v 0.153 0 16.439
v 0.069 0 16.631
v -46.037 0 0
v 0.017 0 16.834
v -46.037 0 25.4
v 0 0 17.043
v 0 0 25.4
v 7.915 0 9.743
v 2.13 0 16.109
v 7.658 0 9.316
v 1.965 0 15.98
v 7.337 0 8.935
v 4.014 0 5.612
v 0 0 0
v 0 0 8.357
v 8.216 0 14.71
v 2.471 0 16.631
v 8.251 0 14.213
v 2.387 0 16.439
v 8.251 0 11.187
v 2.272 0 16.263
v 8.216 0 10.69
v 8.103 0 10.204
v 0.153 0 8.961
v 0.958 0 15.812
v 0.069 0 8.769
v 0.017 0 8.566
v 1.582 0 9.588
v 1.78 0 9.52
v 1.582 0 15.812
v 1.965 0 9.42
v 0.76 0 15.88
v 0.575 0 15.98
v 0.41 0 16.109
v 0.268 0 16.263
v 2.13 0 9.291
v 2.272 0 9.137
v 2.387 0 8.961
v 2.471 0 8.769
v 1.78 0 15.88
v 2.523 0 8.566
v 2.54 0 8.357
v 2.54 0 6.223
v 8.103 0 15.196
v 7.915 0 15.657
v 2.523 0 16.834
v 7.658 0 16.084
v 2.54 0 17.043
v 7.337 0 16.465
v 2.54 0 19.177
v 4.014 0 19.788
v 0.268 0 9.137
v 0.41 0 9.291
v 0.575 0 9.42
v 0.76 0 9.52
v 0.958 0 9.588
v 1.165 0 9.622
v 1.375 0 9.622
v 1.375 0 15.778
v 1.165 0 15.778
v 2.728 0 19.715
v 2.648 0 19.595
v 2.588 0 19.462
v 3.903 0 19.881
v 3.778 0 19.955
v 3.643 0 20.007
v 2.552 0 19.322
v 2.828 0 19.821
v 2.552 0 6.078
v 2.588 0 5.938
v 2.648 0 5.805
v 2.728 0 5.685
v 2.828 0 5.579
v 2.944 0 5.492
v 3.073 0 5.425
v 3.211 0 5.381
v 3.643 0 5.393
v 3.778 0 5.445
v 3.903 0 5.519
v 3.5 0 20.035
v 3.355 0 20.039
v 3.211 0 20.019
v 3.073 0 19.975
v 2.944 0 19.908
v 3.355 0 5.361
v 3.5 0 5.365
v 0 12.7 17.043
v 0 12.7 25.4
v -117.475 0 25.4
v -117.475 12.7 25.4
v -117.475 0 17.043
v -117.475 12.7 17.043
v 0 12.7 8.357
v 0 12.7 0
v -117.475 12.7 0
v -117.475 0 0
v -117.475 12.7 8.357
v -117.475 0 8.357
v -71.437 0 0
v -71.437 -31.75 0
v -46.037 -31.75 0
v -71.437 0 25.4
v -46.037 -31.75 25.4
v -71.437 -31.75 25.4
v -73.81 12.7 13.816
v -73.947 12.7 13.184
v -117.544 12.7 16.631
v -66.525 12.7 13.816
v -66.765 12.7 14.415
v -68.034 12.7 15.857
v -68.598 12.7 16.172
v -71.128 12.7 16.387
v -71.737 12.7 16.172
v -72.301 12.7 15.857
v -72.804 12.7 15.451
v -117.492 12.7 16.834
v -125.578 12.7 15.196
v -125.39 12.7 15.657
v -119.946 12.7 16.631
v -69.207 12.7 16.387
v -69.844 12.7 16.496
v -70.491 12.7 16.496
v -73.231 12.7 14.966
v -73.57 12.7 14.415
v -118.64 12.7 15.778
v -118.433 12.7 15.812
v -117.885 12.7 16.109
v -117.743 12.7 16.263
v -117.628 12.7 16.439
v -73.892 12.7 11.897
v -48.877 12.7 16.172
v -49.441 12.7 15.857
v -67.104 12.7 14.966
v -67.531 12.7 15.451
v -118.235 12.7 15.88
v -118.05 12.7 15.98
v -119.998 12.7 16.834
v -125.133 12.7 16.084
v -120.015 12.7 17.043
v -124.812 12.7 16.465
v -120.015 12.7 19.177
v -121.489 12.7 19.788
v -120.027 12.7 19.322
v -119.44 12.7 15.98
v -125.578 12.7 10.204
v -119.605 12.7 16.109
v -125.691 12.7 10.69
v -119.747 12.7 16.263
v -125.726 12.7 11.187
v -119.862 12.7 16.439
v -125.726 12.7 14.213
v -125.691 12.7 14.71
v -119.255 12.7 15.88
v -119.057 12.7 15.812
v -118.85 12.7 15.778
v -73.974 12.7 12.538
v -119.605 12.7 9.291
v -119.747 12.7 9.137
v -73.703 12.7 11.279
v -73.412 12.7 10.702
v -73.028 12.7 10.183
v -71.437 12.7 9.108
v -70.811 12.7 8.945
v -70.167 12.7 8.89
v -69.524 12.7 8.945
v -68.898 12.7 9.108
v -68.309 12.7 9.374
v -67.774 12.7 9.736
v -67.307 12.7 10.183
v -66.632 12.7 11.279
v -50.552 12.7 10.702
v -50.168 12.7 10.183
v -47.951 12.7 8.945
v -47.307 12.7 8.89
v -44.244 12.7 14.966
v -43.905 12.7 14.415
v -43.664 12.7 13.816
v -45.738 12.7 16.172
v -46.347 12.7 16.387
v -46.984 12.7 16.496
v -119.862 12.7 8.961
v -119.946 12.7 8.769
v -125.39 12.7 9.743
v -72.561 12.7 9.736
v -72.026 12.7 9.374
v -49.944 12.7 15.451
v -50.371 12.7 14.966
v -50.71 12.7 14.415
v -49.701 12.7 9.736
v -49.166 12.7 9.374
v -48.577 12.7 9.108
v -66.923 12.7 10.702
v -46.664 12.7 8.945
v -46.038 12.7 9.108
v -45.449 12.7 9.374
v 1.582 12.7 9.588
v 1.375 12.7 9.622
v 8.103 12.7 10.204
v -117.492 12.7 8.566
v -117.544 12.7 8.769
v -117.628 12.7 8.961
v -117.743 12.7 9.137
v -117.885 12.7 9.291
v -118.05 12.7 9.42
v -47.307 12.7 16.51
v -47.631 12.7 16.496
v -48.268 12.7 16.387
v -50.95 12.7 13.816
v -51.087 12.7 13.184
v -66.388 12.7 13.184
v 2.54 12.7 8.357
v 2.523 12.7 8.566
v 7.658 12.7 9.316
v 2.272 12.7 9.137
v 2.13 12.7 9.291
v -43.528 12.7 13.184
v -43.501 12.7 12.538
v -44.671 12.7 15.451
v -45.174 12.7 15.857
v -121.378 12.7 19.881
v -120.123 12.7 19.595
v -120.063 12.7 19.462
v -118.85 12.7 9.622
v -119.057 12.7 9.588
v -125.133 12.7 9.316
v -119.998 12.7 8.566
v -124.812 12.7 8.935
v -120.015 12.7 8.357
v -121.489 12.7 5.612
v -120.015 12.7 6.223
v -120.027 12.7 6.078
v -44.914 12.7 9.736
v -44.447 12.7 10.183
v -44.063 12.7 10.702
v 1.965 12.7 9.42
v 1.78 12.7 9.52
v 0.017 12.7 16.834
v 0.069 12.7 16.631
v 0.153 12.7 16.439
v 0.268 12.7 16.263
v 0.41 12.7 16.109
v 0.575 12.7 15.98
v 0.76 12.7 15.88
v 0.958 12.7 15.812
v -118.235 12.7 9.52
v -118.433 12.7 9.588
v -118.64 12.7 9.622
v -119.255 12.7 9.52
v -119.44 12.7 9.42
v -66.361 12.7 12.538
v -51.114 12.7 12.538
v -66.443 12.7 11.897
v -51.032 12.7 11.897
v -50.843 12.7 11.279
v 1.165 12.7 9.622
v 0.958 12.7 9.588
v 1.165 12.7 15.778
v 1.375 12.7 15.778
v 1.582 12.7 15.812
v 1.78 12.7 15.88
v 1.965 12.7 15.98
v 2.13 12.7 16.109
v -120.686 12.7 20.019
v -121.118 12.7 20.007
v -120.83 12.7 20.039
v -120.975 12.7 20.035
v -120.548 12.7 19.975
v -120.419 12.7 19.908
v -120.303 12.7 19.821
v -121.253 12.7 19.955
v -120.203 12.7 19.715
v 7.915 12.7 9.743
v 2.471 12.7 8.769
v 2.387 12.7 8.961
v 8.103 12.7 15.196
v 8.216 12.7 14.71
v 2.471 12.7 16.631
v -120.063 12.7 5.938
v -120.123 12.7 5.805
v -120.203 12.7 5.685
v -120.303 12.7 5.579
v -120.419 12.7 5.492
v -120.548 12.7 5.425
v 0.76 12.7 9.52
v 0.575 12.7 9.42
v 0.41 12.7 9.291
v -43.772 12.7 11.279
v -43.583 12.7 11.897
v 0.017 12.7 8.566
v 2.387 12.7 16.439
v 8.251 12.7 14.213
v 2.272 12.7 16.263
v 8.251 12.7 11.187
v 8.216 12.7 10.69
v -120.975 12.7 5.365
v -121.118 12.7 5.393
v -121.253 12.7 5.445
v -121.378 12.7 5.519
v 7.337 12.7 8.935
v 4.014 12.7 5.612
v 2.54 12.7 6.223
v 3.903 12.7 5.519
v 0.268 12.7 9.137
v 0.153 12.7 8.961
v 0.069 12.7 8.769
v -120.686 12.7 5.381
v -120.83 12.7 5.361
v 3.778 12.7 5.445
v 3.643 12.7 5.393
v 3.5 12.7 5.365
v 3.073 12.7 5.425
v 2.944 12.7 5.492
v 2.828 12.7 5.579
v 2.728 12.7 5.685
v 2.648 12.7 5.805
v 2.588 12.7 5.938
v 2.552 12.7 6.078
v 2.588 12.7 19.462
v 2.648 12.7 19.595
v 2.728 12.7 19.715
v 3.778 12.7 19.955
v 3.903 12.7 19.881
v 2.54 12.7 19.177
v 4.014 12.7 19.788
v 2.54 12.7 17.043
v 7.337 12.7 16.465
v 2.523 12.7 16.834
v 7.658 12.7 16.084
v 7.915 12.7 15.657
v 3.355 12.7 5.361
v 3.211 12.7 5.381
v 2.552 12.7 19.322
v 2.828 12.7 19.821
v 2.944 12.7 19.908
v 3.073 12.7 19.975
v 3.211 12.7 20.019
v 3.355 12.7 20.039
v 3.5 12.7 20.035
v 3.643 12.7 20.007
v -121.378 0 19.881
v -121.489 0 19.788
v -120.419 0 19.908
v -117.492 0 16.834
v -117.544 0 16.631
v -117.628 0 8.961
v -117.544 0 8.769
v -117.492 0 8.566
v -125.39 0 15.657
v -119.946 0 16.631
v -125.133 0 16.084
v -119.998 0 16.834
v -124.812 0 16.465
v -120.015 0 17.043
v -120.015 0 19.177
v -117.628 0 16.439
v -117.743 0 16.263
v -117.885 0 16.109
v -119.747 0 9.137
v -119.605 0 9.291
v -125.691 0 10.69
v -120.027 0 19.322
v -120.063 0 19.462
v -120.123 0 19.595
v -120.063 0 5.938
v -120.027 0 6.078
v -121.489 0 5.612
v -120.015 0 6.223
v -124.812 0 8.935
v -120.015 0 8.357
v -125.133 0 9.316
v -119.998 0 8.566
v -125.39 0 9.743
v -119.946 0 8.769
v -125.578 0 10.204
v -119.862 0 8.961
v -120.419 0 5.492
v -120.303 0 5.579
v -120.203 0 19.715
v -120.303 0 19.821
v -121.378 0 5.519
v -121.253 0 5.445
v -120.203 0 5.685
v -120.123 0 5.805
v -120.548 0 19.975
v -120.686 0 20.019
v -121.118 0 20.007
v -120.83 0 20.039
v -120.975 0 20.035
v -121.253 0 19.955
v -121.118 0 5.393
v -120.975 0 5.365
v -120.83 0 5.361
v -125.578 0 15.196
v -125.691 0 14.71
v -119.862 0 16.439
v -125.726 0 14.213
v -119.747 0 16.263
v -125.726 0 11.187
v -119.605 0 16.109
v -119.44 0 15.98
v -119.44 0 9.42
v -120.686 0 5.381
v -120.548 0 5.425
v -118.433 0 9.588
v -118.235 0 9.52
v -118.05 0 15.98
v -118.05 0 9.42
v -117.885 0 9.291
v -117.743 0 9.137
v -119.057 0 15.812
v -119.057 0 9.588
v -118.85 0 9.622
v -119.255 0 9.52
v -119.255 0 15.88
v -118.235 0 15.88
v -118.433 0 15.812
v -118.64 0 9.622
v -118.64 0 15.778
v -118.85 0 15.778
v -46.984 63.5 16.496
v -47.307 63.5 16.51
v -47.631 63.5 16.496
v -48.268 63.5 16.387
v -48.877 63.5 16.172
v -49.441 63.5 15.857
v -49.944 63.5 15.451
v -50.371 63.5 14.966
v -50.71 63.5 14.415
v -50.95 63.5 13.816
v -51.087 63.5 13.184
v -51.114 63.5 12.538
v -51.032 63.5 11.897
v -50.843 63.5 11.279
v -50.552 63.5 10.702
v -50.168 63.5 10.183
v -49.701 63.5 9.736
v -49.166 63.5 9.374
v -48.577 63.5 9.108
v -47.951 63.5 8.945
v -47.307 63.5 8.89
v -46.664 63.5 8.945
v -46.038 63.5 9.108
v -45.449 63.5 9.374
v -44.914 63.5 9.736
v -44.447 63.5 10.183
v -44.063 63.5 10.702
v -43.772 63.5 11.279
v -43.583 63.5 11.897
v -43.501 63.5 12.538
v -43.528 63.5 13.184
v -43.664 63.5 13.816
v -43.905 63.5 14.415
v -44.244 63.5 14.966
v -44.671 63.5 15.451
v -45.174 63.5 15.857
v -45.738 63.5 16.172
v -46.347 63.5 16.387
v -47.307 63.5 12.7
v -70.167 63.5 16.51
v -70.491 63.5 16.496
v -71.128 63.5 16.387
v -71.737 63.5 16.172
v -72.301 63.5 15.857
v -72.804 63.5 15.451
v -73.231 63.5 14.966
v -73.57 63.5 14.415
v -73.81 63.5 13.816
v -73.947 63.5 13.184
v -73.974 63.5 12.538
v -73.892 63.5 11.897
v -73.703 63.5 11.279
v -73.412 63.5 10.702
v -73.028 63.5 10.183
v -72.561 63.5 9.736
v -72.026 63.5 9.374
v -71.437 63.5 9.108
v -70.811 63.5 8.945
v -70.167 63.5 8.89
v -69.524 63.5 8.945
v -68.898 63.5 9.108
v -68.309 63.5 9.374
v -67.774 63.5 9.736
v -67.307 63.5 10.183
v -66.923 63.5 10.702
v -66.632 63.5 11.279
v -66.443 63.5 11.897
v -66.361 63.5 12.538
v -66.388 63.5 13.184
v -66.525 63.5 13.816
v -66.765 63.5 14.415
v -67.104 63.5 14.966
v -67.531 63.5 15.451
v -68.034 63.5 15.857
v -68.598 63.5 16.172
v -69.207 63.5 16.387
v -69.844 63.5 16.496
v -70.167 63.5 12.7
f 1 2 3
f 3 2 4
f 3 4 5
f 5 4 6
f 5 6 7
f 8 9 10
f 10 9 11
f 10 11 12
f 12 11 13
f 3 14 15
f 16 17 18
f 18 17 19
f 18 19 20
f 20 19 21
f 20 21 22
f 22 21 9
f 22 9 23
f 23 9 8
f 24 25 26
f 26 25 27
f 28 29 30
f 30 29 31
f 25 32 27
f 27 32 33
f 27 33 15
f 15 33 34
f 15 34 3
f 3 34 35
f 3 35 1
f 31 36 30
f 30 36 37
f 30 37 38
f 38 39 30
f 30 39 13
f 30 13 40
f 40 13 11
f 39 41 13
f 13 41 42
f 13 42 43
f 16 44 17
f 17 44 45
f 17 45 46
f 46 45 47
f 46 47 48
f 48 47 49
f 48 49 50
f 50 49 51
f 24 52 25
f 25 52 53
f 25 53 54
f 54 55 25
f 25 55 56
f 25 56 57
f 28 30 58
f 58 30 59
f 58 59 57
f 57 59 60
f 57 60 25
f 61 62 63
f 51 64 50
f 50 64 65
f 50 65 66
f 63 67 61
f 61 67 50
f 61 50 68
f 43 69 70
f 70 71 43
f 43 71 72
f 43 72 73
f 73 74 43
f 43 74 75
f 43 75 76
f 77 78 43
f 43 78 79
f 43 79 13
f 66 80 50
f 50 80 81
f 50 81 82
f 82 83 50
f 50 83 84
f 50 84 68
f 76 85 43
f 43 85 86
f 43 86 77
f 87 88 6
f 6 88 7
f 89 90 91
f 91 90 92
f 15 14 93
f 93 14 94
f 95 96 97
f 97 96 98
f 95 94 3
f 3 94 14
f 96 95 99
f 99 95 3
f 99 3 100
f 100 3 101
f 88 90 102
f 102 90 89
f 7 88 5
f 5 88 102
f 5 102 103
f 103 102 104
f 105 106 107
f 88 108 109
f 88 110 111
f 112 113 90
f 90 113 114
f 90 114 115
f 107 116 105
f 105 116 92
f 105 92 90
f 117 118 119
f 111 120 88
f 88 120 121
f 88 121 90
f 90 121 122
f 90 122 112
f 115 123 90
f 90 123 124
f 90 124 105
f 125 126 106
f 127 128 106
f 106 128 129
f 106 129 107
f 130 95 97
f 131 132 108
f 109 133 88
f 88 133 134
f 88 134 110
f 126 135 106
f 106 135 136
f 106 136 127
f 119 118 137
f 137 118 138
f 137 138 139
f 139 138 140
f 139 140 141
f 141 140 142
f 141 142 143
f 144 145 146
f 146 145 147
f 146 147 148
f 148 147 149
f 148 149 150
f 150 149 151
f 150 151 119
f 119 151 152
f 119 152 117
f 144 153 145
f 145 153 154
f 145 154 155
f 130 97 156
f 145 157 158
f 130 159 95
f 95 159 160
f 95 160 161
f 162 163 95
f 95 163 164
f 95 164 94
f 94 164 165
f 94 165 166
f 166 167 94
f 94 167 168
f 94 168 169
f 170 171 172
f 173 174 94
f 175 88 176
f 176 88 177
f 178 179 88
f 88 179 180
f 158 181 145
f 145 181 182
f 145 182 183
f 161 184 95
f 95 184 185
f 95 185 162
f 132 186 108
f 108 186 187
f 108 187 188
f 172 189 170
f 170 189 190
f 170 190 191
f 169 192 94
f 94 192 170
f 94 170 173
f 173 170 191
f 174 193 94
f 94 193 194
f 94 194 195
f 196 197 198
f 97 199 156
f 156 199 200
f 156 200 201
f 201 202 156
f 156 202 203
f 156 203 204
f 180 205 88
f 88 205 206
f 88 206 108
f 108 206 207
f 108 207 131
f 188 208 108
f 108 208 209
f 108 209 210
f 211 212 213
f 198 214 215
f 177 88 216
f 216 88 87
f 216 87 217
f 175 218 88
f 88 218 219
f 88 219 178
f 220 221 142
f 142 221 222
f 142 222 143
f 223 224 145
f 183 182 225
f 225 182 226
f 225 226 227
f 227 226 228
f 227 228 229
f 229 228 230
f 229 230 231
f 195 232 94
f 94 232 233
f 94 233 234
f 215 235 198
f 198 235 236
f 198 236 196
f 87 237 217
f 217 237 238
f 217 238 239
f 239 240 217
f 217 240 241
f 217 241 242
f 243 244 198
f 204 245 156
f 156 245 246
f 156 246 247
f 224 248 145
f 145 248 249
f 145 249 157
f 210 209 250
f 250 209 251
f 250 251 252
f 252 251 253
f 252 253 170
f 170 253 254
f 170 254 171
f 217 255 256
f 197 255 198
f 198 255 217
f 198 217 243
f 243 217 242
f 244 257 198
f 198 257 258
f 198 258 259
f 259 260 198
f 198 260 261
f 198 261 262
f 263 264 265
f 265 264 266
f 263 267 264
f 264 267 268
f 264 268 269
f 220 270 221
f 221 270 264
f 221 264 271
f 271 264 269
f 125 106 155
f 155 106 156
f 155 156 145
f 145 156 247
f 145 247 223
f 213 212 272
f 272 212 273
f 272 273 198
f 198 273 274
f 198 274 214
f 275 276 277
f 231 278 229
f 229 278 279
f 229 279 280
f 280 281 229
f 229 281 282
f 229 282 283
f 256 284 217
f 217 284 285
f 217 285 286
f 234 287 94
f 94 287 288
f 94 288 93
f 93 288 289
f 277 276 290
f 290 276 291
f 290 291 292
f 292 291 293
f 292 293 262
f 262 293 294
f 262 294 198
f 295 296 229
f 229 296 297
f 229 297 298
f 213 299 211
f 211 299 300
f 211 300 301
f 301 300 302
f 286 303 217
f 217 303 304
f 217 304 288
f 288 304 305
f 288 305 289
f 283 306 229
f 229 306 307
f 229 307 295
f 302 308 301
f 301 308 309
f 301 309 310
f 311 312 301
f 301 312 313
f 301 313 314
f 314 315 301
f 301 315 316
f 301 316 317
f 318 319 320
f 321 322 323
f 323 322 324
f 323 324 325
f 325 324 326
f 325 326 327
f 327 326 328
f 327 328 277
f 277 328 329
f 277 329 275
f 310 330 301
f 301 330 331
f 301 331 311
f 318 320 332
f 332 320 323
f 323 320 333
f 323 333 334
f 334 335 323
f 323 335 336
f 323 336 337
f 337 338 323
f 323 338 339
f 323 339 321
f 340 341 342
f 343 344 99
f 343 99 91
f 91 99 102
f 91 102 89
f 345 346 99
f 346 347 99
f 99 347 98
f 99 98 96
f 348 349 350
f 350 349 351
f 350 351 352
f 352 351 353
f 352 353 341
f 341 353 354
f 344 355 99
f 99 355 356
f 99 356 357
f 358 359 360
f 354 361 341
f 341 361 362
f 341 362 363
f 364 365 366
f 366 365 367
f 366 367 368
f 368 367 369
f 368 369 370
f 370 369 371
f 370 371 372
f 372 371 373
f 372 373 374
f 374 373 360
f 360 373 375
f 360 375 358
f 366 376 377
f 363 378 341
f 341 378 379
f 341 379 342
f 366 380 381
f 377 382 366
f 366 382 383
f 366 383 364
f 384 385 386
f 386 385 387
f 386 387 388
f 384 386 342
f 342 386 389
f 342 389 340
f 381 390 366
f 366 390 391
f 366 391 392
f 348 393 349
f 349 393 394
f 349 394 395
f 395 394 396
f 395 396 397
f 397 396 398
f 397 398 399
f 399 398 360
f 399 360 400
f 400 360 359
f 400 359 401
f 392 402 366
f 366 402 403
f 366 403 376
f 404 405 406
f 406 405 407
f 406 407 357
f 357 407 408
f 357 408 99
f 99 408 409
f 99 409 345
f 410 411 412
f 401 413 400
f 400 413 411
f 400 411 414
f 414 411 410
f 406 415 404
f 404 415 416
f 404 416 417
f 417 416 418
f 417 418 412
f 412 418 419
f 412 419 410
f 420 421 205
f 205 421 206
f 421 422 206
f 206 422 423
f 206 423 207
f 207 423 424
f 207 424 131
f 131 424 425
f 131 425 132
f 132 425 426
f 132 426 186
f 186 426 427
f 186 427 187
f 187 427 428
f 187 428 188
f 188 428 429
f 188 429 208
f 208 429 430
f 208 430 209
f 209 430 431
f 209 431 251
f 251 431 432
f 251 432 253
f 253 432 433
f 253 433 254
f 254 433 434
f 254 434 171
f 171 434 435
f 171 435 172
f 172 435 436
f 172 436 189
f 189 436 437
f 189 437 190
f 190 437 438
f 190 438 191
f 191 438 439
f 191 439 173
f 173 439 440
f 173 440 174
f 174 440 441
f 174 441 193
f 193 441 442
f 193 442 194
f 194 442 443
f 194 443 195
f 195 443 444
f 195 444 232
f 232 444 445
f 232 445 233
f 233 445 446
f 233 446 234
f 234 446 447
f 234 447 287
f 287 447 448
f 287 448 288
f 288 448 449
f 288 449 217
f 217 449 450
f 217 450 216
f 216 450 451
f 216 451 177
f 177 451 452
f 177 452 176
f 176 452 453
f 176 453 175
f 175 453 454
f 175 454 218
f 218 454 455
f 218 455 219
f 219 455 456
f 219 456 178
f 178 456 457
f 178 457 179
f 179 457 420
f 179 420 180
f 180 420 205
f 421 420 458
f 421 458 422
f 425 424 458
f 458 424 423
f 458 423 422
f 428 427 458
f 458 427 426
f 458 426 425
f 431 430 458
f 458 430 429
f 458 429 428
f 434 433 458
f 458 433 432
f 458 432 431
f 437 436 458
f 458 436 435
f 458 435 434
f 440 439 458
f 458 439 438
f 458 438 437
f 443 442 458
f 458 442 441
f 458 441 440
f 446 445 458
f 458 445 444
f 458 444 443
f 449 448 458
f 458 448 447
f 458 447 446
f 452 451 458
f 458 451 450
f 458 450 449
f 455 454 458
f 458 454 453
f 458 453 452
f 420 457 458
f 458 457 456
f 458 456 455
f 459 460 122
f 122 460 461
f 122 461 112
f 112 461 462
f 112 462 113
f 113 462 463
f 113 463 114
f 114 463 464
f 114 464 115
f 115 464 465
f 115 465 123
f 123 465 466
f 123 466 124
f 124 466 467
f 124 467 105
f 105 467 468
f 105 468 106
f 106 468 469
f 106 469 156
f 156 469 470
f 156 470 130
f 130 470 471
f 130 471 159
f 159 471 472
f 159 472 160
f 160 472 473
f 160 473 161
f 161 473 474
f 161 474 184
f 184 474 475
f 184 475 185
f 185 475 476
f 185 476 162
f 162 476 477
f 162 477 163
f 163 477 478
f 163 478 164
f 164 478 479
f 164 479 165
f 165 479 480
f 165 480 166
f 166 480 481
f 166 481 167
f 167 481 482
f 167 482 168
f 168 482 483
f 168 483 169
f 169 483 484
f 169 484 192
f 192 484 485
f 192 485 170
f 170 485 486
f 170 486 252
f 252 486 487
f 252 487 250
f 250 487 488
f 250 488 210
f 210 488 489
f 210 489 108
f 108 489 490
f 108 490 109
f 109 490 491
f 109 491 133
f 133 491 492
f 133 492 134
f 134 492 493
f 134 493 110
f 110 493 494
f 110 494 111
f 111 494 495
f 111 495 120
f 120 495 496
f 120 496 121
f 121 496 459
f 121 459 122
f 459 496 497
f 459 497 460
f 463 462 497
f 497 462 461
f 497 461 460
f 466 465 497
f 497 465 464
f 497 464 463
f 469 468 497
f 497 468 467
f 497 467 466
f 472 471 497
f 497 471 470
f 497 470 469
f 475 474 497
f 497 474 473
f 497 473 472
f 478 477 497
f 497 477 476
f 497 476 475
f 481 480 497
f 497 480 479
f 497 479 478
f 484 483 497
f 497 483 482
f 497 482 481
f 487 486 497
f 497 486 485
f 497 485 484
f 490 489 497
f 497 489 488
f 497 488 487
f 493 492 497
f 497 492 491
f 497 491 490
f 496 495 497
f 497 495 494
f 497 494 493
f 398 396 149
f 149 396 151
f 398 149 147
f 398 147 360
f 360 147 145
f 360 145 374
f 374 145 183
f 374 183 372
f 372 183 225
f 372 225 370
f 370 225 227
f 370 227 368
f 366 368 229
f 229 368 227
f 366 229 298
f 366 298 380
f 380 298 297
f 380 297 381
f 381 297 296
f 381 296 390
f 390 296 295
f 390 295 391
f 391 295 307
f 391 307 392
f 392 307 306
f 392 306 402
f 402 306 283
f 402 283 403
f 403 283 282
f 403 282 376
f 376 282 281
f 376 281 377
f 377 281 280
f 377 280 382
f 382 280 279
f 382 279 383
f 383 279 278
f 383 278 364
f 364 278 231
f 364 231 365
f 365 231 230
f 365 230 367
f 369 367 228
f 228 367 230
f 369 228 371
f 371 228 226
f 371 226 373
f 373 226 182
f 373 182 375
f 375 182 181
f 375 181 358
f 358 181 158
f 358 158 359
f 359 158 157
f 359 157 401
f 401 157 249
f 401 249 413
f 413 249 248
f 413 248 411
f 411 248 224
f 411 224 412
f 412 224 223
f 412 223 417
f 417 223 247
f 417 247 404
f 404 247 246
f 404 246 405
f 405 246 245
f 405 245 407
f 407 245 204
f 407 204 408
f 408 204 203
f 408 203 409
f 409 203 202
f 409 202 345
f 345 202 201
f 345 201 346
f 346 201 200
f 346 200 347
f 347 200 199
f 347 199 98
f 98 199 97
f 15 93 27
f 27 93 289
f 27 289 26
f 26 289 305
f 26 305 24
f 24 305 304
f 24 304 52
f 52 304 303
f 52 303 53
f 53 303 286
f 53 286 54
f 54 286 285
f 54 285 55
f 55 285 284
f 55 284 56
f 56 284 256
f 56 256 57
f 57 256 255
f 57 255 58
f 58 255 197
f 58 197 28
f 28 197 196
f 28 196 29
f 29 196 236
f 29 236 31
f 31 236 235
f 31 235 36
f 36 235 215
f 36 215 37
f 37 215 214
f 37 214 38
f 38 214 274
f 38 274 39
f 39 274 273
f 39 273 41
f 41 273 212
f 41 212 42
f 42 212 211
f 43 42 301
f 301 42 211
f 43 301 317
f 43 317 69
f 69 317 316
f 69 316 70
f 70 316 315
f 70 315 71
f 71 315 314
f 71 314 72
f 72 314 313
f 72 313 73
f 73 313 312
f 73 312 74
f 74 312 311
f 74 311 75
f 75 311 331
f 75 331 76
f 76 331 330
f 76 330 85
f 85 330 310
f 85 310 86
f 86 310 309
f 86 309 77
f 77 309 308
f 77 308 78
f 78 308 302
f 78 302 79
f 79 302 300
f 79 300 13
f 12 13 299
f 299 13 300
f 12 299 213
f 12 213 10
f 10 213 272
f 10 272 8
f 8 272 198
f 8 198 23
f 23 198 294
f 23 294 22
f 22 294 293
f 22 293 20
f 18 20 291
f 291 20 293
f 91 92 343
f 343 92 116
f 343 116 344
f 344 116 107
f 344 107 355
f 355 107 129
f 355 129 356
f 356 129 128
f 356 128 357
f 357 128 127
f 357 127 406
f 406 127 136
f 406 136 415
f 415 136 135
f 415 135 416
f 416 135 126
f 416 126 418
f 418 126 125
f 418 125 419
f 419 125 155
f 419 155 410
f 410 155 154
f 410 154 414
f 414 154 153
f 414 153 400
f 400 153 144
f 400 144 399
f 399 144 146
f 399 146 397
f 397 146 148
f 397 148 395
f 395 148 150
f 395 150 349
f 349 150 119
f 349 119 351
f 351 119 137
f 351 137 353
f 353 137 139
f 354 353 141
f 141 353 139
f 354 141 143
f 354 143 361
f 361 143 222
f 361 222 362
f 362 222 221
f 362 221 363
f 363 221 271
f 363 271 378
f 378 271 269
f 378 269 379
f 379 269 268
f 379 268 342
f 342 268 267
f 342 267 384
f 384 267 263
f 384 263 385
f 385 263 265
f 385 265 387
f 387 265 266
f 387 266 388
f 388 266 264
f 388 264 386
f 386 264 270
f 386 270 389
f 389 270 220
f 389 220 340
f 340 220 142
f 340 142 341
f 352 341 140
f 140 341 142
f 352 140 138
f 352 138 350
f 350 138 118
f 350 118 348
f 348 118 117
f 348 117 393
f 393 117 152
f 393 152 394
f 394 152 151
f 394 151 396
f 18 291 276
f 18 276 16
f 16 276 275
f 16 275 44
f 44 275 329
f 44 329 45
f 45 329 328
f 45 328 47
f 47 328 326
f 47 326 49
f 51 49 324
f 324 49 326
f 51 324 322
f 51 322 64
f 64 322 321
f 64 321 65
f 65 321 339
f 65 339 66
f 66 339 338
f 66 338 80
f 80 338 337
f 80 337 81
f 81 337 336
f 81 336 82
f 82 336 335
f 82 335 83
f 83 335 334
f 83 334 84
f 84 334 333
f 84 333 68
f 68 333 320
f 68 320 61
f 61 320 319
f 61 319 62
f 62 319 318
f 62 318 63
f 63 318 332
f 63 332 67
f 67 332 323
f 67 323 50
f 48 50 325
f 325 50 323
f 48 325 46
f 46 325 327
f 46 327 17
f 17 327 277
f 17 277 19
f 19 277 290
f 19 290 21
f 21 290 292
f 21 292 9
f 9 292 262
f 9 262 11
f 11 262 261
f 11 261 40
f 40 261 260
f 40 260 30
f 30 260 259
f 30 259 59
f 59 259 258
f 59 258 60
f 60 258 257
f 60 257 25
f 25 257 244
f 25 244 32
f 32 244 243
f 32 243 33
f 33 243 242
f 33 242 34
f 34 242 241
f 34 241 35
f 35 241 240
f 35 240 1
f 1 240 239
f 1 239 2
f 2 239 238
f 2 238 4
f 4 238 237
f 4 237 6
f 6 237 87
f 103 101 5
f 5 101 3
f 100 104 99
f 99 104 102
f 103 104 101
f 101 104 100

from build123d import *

# Parameters (mm, degrees)
SKETCH1_W           = 117.475
SKETCH1_H           = 25.4
BOSS_EXTRUDE1_DEPTH = 12.7
SKETCH3_R           = 3.81
BOSS_EXTRUDE2_DEPTH = 50.8
BOSS_EXTRUDE7_DEPTH = 12.7
SKETCH12_W          = 25.4
SKETCH12_H          = 25.4
BOSS_EXTRUDE8_DEPTH = 31.75


with BuildPart() as part:
    # Sketch1 → Boss-Extrude1 (new body)
    with BuildSketch(Plane(origin=(0, 0, 0), x_dir=(1, 0, 0), z_dir=(0, 1, 0))):
        with Locations((-58.7375, -12.7)):
            Rectangle(SKETCH1_W, SKETCH1_H)
    extrude(amount=BOSS_EXTRUDE1_DEPTH)

    # Sketch3 → Boss-Extrude2 (add)
    with BuildSketch(Plane(origin=(0, 12.7, 0), x_dir=(1, 0, 0), z_dir=(0, 1, 0))):
        with Locations(Location((-47.3075, -12.7, 0), (0, 0, 270))):
            Circle(SKETCH3_R)
        with Locations(Location((-70.1675, -12.7, 0), (0, 0, 90))):
            Circle(SKETCH3_R)
    extrude(amount=BOSS_EXTRUDE2_DEPTH)

    # Sketch10 → Boss-Extrude7 (add)
    with BuildSketch(Plane(origin=(0, 12.7, 0), x_dir=(1, 0, 0), z_dir=(0, 1, 0))):
        with BuildLine():
            Line((0, -12.7), (0, -8.3566))
            ThreePointArc((0, -8.3566), (1.27, -9.6266), (2.54, -8.3566))
            Line((2.54, -8.3566), (2.54, -6.223))
            ThreePointArc((2.54, -6.223), (3.073114588, -5.425137636), (4.014257416, -5.612342584))
            Line((4.014257416, -5.612342584), (7.336952181, -8.935037349))
            ThreePointArc((7.336952181, -8.935037349), (8.017998618, -9.969860776), (8.2511937, -11.186538149))
            Line((8.2511937, -11.186538149), (8.2511937, -12.7))
            Line((8.2511937, -12.7), (0, -12.7))
        make_face()
        with BuildLine():
            Line((-117.475, -12.7), (-117.475, -8.3566))
            ThreePointArc((-117.475, -8.3566), (-118.745, -9.6266), (-120.015, -8.3566))
            Line((-120.015, -8.3566), (-120.015, -6.223))
            ThreePointArc((-120.015, -6.223), (-120.548114588, -5.425137636), (-121.489257416, -5.612342584))
            Line((-121.489257416, -5.612342584), (-124.811952181, -8.935037349))
            ThreePointArc((-124.811952181, -8.935037349), (-125.492998618, -9.969860776), (-125.7261937, -11.186538149))
            Line((-125.7261937, -11.186538149), (-125.7261937, -12.7))
            Line((-125.7261937, -12.7), (-117.475, -12.7))
        make_face()
    boss_extrude7 = extrude(amount=-BOSS_EXTRUDE7_DEPTH)

    # Mirror1: Boss-Extrude7 across plane
    add(boss_extrude7.mirror(Plane(origin=(8.2511937, 0, 12.7), x_dir=(1, 0, 0), z_dir=(0, 0, 1))))

    # Sketch12 → Boss-Extrude8 (add)
    with BuildSketch(Plane(origin=(0, 0, 0), x_dir=(-1, 0, 0), z_dir=(0, -1, 0))):
        with Locations((58.7375, -12.7)):
            Rectangle(SKETCH12_W, SKETCH12_H)
    extrude(amount=BOSS_EXTRUDE8_DEPTH)


solid = part.part
